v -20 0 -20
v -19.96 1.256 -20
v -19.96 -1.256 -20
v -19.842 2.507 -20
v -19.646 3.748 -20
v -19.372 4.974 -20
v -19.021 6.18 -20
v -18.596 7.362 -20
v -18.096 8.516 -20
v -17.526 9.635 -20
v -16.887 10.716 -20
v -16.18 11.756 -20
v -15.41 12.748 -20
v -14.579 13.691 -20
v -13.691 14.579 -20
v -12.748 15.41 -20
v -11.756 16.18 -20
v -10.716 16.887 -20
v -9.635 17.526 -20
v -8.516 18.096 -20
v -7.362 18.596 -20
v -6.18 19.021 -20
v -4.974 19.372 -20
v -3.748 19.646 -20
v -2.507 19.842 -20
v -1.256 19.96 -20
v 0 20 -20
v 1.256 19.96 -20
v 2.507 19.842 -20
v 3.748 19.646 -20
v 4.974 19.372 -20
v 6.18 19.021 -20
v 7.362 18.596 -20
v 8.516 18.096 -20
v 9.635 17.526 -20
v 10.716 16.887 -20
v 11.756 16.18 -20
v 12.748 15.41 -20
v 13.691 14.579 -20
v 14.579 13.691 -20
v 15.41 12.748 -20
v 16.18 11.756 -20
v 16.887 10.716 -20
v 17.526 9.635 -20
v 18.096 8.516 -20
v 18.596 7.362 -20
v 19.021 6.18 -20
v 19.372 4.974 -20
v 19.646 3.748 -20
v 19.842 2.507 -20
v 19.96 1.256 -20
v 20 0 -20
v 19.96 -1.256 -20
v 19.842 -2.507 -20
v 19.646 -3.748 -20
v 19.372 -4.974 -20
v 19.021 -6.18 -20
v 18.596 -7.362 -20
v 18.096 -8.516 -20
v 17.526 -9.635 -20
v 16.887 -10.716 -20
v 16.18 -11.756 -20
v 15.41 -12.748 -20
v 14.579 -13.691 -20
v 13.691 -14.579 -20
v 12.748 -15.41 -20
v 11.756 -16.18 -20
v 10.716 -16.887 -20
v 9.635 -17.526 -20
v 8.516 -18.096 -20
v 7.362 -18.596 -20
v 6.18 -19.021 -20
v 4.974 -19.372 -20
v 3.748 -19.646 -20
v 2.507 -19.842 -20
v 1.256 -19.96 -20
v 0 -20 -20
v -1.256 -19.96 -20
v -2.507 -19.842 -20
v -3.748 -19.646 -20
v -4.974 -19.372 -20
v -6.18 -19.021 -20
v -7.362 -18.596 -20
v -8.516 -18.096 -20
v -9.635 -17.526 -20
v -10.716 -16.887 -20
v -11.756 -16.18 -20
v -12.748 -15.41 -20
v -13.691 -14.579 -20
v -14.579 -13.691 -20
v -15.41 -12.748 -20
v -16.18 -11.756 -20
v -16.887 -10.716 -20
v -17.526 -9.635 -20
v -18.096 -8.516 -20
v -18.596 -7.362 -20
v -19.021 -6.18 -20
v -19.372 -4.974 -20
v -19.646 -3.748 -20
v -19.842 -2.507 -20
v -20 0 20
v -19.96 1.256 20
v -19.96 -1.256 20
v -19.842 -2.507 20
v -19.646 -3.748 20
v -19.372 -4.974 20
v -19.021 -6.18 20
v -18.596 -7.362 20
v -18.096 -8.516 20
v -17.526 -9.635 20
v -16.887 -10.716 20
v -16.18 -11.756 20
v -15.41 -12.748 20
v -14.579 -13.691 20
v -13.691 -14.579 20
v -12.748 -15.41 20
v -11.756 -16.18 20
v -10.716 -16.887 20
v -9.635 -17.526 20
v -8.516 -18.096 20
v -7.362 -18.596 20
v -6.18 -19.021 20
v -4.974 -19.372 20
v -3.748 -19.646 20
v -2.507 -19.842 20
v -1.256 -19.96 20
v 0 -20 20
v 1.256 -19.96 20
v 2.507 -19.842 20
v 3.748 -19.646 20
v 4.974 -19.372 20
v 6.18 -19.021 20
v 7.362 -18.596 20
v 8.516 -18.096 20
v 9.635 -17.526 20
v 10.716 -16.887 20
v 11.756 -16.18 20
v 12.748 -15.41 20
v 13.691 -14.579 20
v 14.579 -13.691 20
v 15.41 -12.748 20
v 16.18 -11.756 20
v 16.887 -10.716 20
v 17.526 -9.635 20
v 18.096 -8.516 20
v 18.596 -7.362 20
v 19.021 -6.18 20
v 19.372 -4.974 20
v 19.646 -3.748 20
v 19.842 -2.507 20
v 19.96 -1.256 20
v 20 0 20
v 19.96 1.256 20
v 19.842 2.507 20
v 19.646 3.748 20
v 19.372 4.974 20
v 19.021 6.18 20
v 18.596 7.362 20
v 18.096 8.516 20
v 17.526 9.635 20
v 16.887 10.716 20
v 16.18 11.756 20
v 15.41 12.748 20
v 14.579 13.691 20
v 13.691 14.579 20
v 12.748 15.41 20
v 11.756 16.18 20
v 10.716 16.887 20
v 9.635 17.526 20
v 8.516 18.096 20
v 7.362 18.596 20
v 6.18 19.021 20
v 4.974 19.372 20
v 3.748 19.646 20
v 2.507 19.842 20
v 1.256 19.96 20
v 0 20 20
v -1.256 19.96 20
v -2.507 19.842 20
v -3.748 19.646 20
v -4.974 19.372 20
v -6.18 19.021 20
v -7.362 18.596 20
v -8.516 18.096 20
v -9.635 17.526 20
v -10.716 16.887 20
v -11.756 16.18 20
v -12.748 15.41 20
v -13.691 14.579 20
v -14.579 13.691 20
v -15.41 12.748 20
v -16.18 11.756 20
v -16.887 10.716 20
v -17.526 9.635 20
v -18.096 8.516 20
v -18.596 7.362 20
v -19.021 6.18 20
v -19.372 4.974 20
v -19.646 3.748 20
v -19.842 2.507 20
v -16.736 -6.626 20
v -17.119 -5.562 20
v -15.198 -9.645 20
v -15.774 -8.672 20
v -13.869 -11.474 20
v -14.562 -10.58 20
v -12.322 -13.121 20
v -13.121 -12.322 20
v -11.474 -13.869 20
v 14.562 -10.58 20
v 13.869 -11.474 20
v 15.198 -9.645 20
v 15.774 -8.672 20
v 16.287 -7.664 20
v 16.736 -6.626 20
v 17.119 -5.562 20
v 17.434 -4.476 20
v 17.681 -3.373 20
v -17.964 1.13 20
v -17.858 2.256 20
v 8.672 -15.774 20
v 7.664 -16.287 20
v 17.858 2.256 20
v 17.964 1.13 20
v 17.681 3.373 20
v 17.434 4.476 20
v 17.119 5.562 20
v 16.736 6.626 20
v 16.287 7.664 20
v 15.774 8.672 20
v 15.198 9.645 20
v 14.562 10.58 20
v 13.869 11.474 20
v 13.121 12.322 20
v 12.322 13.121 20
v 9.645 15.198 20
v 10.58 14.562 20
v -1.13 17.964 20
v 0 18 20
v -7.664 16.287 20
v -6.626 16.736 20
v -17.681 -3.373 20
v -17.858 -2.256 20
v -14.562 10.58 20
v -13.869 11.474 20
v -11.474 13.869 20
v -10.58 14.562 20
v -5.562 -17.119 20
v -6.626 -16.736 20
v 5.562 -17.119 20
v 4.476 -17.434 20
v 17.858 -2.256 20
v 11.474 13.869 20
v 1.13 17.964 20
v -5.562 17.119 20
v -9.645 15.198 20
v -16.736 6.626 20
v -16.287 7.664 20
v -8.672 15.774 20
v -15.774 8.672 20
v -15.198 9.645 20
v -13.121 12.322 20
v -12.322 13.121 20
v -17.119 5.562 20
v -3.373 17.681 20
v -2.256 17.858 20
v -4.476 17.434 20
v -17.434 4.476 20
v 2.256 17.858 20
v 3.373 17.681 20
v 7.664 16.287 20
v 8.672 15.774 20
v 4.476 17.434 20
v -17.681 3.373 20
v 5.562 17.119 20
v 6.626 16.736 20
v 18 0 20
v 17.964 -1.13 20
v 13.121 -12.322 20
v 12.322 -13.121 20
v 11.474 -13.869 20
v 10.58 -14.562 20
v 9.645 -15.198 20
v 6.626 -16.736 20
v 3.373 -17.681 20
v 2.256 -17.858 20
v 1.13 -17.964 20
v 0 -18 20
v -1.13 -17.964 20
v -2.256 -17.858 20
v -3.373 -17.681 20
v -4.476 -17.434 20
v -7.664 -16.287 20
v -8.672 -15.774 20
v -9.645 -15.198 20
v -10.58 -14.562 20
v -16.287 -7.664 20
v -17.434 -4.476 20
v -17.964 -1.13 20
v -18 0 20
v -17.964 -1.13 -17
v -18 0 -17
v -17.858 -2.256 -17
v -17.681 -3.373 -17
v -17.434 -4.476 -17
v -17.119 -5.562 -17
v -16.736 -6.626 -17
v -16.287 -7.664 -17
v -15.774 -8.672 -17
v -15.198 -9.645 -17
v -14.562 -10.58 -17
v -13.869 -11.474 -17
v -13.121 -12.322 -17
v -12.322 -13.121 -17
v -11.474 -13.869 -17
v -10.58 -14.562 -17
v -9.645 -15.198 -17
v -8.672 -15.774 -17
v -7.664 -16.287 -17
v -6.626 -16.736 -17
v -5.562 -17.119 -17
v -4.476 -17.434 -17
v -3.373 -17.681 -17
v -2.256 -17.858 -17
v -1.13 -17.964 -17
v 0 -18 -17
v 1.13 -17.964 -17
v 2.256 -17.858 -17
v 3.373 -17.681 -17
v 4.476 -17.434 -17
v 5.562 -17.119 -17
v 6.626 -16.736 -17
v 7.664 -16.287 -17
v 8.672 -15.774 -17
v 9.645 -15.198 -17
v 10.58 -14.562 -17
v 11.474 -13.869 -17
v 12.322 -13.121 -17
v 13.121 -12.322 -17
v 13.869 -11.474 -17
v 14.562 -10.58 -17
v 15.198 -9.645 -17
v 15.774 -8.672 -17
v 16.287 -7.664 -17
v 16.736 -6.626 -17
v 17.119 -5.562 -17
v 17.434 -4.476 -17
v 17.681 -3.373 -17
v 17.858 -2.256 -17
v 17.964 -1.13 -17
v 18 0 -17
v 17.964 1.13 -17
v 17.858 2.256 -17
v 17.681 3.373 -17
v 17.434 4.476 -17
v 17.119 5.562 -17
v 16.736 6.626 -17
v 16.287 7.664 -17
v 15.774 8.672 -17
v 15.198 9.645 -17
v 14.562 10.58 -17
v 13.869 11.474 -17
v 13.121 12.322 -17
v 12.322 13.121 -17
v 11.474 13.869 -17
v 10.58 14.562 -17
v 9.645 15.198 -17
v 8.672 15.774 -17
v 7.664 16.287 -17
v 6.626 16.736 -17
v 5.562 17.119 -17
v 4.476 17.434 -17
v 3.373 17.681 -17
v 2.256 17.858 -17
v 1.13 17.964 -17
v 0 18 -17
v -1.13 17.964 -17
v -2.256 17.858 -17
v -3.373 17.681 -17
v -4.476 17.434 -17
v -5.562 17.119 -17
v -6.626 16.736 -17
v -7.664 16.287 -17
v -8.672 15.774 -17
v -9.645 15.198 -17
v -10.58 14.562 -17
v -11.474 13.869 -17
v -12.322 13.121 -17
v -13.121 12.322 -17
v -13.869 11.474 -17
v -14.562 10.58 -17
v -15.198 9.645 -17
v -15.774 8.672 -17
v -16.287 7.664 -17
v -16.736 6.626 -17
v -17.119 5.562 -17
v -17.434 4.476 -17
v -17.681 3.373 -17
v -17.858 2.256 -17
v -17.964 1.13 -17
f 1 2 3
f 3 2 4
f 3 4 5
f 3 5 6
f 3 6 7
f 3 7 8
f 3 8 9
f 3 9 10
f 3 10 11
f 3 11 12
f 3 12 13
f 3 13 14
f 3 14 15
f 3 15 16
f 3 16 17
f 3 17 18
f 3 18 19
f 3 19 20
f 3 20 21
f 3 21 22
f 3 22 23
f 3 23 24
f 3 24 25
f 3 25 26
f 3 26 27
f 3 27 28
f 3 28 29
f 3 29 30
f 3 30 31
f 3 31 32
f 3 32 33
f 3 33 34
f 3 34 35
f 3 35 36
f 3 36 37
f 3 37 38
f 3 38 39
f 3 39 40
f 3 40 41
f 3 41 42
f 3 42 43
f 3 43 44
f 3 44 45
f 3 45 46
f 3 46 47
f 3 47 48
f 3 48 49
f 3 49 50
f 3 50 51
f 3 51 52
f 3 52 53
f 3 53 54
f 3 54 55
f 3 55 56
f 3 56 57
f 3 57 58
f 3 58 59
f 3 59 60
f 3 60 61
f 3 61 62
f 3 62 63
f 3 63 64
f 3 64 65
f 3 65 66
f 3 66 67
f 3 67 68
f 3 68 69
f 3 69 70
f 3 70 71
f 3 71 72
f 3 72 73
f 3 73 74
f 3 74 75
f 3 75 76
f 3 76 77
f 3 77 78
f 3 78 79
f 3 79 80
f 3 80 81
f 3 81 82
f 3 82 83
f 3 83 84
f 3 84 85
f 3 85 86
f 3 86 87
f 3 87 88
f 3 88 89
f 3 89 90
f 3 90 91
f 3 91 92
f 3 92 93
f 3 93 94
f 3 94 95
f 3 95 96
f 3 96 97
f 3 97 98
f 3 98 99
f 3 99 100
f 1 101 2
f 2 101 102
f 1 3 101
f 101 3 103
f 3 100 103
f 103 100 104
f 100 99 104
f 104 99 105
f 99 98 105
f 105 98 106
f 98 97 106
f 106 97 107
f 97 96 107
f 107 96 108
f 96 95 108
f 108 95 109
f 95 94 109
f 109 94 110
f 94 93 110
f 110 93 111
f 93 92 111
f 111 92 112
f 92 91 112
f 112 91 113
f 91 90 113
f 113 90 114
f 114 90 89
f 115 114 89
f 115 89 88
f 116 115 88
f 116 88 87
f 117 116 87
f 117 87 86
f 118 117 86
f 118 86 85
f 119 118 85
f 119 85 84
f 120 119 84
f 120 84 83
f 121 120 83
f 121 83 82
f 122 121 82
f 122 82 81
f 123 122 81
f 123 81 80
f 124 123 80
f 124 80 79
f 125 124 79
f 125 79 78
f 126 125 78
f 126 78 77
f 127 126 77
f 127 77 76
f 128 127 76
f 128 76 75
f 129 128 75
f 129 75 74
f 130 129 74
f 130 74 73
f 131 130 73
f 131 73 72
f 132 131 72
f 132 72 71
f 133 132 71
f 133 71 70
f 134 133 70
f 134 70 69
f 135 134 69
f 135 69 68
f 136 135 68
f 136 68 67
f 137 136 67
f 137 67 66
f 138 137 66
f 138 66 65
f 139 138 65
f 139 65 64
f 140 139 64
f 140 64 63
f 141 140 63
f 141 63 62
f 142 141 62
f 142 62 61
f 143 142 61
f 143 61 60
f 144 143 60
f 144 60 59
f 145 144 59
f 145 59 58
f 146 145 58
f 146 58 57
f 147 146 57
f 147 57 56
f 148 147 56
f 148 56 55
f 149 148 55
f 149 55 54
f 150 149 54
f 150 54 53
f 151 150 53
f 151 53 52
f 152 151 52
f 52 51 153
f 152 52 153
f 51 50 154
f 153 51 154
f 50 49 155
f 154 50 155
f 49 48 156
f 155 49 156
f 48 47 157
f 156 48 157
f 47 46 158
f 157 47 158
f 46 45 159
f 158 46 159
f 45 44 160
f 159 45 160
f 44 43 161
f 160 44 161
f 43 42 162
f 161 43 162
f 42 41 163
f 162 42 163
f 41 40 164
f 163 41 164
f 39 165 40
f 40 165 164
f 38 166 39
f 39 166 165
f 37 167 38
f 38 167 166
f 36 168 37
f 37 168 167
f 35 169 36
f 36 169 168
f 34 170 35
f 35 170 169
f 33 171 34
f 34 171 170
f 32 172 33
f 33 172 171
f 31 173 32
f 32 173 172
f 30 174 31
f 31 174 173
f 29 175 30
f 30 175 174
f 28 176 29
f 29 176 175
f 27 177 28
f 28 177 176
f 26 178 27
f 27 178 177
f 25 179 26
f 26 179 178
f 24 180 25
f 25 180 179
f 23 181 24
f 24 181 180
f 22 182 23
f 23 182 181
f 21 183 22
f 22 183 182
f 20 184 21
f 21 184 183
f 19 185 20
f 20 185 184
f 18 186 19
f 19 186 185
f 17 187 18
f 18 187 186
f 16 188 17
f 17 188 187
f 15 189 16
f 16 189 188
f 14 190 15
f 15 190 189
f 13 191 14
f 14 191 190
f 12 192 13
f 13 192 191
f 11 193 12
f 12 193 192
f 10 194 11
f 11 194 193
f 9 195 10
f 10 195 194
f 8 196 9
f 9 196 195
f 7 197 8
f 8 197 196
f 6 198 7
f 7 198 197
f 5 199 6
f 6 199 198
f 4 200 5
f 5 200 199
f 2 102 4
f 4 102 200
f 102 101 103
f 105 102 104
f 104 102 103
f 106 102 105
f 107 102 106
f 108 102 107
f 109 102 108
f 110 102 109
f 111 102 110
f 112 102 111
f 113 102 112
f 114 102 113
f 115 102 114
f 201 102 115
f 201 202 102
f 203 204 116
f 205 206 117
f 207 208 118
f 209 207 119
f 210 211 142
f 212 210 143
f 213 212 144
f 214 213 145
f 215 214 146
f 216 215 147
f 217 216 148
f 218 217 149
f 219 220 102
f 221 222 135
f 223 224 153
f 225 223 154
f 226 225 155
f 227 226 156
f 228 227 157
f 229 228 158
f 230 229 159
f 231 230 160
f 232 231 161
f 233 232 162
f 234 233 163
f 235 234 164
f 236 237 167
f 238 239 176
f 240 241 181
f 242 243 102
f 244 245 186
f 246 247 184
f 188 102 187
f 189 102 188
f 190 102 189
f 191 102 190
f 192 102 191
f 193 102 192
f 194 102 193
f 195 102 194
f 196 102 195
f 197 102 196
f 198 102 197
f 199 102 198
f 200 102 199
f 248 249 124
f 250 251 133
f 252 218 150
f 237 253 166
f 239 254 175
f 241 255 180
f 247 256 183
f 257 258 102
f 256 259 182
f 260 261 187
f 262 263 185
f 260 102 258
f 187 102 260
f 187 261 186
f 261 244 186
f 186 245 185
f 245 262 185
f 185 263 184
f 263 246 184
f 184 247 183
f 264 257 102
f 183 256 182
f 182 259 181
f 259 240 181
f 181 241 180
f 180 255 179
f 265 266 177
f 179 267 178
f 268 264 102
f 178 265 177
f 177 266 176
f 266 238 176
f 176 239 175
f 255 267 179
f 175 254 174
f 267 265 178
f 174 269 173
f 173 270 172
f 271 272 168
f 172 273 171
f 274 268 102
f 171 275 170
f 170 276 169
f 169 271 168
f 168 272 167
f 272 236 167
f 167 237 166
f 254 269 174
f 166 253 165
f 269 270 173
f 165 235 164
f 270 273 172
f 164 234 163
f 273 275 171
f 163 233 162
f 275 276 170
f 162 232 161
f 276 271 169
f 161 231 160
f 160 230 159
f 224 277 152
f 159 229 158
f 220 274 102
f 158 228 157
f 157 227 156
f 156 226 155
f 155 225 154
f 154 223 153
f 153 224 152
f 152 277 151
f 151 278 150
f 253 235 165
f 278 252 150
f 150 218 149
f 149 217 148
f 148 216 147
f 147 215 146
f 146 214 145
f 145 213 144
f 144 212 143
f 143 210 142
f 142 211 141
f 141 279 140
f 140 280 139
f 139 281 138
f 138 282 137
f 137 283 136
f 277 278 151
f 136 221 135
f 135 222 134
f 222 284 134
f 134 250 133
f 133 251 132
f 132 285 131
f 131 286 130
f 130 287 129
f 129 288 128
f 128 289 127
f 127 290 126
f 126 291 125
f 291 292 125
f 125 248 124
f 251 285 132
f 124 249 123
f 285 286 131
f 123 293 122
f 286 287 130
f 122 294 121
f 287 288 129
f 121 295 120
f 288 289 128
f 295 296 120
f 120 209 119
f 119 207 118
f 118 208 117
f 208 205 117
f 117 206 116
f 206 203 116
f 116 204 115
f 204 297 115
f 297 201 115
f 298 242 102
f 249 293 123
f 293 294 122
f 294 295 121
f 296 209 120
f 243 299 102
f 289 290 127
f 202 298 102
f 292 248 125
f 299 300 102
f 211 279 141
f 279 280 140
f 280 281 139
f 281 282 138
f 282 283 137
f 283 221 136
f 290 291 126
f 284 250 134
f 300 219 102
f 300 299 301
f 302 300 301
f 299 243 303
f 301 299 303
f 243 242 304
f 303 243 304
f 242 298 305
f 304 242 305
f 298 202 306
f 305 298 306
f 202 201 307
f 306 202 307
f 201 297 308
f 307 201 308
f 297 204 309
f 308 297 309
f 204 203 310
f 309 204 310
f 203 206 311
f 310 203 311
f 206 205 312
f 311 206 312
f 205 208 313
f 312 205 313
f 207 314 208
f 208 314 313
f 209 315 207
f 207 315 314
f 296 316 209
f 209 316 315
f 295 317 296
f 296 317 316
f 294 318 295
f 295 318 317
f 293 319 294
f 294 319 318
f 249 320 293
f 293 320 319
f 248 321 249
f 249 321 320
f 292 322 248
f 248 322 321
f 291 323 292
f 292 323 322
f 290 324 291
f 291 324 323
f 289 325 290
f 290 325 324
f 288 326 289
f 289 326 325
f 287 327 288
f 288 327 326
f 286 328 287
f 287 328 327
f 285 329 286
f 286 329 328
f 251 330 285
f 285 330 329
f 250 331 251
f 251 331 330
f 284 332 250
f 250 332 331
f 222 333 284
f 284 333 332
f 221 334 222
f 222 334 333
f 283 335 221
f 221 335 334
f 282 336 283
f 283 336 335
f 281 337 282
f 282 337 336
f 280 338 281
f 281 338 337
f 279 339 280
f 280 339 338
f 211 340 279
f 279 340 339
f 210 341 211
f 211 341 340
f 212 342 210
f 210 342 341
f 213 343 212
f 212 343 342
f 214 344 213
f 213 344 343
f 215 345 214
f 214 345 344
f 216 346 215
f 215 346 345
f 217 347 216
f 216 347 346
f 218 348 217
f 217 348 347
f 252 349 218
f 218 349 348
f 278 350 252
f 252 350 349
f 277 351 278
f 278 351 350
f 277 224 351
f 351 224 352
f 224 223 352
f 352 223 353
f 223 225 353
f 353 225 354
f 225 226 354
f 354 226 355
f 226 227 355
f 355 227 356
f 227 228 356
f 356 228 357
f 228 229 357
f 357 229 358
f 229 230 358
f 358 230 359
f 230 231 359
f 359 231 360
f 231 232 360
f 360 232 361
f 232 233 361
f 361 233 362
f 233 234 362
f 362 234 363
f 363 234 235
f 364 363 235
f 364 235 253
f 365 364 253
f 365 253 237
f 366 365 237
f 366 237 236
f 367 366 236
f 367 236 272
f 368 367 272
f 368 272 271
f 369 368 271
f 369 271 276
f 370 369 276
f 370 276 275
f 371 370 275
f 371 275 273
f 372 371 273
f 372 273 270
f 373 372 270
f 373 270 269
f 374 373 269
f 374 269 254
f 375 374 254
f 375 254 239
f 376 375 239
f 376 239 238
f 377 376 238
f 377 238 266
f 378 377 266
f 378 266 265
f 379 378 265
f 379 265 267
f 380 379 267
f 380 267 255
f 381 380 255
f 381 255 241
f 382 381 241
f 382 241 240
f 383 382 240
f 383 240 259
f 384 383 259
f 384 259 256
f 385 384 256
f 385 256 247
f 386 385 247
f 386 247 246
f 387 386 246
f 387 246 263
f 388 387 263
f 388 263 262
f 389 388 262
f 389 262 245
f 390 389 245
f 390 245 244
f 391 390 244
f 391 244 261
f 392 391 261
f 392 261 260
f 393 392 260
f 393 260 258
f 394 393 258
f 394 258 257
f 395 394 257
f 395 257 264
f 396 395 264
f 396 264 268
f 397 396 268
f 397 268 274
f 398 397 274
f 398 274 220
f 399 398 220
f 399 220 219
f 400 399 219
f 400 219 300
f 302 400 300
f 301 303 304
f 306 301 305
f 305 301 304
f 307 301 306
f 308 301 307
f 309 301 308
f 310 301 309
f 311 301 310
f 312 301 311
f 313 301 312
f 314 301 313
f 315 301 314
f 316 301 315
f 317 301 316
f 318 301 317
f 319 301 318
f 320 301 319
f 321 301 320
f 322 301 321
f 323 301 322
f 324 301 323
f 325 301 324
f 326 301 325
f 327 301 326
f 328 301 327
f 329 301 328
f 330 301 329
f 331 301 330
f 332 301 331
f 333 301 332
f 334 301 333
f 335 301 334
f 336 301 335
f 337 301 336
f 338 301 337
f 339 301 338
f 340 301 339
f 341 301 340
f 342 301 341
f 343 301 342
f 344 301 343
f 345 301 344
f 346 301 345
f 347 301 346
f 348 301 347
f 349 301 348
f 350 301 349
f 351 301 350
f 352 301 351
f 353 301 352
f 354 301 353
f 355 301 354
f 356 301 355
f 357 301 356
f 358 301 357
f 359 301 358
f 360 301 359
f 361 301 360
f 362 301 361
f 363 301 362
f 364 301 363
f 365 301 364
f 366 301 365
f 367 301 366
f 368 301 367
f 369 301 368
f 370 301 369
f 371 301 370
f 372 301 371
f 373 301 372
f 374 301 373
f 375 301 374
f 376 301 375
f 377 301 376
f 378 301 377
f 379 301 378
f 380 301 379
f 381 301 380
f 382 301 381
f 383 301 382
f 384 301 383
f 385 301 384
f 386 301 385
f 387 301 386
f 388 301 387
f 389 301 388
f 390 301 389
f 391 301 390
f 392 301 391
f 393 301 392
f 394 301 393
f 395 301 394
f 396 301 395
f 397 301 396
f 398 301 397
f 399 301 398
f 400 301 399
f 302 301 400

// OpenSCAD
difference() {
	
	cylinder (h = 40, r=20, center = true, $fn=100);
    translate (v=[0,0,8]) cylinder (h = 50, r=18, center = true, $fn=100);
}
